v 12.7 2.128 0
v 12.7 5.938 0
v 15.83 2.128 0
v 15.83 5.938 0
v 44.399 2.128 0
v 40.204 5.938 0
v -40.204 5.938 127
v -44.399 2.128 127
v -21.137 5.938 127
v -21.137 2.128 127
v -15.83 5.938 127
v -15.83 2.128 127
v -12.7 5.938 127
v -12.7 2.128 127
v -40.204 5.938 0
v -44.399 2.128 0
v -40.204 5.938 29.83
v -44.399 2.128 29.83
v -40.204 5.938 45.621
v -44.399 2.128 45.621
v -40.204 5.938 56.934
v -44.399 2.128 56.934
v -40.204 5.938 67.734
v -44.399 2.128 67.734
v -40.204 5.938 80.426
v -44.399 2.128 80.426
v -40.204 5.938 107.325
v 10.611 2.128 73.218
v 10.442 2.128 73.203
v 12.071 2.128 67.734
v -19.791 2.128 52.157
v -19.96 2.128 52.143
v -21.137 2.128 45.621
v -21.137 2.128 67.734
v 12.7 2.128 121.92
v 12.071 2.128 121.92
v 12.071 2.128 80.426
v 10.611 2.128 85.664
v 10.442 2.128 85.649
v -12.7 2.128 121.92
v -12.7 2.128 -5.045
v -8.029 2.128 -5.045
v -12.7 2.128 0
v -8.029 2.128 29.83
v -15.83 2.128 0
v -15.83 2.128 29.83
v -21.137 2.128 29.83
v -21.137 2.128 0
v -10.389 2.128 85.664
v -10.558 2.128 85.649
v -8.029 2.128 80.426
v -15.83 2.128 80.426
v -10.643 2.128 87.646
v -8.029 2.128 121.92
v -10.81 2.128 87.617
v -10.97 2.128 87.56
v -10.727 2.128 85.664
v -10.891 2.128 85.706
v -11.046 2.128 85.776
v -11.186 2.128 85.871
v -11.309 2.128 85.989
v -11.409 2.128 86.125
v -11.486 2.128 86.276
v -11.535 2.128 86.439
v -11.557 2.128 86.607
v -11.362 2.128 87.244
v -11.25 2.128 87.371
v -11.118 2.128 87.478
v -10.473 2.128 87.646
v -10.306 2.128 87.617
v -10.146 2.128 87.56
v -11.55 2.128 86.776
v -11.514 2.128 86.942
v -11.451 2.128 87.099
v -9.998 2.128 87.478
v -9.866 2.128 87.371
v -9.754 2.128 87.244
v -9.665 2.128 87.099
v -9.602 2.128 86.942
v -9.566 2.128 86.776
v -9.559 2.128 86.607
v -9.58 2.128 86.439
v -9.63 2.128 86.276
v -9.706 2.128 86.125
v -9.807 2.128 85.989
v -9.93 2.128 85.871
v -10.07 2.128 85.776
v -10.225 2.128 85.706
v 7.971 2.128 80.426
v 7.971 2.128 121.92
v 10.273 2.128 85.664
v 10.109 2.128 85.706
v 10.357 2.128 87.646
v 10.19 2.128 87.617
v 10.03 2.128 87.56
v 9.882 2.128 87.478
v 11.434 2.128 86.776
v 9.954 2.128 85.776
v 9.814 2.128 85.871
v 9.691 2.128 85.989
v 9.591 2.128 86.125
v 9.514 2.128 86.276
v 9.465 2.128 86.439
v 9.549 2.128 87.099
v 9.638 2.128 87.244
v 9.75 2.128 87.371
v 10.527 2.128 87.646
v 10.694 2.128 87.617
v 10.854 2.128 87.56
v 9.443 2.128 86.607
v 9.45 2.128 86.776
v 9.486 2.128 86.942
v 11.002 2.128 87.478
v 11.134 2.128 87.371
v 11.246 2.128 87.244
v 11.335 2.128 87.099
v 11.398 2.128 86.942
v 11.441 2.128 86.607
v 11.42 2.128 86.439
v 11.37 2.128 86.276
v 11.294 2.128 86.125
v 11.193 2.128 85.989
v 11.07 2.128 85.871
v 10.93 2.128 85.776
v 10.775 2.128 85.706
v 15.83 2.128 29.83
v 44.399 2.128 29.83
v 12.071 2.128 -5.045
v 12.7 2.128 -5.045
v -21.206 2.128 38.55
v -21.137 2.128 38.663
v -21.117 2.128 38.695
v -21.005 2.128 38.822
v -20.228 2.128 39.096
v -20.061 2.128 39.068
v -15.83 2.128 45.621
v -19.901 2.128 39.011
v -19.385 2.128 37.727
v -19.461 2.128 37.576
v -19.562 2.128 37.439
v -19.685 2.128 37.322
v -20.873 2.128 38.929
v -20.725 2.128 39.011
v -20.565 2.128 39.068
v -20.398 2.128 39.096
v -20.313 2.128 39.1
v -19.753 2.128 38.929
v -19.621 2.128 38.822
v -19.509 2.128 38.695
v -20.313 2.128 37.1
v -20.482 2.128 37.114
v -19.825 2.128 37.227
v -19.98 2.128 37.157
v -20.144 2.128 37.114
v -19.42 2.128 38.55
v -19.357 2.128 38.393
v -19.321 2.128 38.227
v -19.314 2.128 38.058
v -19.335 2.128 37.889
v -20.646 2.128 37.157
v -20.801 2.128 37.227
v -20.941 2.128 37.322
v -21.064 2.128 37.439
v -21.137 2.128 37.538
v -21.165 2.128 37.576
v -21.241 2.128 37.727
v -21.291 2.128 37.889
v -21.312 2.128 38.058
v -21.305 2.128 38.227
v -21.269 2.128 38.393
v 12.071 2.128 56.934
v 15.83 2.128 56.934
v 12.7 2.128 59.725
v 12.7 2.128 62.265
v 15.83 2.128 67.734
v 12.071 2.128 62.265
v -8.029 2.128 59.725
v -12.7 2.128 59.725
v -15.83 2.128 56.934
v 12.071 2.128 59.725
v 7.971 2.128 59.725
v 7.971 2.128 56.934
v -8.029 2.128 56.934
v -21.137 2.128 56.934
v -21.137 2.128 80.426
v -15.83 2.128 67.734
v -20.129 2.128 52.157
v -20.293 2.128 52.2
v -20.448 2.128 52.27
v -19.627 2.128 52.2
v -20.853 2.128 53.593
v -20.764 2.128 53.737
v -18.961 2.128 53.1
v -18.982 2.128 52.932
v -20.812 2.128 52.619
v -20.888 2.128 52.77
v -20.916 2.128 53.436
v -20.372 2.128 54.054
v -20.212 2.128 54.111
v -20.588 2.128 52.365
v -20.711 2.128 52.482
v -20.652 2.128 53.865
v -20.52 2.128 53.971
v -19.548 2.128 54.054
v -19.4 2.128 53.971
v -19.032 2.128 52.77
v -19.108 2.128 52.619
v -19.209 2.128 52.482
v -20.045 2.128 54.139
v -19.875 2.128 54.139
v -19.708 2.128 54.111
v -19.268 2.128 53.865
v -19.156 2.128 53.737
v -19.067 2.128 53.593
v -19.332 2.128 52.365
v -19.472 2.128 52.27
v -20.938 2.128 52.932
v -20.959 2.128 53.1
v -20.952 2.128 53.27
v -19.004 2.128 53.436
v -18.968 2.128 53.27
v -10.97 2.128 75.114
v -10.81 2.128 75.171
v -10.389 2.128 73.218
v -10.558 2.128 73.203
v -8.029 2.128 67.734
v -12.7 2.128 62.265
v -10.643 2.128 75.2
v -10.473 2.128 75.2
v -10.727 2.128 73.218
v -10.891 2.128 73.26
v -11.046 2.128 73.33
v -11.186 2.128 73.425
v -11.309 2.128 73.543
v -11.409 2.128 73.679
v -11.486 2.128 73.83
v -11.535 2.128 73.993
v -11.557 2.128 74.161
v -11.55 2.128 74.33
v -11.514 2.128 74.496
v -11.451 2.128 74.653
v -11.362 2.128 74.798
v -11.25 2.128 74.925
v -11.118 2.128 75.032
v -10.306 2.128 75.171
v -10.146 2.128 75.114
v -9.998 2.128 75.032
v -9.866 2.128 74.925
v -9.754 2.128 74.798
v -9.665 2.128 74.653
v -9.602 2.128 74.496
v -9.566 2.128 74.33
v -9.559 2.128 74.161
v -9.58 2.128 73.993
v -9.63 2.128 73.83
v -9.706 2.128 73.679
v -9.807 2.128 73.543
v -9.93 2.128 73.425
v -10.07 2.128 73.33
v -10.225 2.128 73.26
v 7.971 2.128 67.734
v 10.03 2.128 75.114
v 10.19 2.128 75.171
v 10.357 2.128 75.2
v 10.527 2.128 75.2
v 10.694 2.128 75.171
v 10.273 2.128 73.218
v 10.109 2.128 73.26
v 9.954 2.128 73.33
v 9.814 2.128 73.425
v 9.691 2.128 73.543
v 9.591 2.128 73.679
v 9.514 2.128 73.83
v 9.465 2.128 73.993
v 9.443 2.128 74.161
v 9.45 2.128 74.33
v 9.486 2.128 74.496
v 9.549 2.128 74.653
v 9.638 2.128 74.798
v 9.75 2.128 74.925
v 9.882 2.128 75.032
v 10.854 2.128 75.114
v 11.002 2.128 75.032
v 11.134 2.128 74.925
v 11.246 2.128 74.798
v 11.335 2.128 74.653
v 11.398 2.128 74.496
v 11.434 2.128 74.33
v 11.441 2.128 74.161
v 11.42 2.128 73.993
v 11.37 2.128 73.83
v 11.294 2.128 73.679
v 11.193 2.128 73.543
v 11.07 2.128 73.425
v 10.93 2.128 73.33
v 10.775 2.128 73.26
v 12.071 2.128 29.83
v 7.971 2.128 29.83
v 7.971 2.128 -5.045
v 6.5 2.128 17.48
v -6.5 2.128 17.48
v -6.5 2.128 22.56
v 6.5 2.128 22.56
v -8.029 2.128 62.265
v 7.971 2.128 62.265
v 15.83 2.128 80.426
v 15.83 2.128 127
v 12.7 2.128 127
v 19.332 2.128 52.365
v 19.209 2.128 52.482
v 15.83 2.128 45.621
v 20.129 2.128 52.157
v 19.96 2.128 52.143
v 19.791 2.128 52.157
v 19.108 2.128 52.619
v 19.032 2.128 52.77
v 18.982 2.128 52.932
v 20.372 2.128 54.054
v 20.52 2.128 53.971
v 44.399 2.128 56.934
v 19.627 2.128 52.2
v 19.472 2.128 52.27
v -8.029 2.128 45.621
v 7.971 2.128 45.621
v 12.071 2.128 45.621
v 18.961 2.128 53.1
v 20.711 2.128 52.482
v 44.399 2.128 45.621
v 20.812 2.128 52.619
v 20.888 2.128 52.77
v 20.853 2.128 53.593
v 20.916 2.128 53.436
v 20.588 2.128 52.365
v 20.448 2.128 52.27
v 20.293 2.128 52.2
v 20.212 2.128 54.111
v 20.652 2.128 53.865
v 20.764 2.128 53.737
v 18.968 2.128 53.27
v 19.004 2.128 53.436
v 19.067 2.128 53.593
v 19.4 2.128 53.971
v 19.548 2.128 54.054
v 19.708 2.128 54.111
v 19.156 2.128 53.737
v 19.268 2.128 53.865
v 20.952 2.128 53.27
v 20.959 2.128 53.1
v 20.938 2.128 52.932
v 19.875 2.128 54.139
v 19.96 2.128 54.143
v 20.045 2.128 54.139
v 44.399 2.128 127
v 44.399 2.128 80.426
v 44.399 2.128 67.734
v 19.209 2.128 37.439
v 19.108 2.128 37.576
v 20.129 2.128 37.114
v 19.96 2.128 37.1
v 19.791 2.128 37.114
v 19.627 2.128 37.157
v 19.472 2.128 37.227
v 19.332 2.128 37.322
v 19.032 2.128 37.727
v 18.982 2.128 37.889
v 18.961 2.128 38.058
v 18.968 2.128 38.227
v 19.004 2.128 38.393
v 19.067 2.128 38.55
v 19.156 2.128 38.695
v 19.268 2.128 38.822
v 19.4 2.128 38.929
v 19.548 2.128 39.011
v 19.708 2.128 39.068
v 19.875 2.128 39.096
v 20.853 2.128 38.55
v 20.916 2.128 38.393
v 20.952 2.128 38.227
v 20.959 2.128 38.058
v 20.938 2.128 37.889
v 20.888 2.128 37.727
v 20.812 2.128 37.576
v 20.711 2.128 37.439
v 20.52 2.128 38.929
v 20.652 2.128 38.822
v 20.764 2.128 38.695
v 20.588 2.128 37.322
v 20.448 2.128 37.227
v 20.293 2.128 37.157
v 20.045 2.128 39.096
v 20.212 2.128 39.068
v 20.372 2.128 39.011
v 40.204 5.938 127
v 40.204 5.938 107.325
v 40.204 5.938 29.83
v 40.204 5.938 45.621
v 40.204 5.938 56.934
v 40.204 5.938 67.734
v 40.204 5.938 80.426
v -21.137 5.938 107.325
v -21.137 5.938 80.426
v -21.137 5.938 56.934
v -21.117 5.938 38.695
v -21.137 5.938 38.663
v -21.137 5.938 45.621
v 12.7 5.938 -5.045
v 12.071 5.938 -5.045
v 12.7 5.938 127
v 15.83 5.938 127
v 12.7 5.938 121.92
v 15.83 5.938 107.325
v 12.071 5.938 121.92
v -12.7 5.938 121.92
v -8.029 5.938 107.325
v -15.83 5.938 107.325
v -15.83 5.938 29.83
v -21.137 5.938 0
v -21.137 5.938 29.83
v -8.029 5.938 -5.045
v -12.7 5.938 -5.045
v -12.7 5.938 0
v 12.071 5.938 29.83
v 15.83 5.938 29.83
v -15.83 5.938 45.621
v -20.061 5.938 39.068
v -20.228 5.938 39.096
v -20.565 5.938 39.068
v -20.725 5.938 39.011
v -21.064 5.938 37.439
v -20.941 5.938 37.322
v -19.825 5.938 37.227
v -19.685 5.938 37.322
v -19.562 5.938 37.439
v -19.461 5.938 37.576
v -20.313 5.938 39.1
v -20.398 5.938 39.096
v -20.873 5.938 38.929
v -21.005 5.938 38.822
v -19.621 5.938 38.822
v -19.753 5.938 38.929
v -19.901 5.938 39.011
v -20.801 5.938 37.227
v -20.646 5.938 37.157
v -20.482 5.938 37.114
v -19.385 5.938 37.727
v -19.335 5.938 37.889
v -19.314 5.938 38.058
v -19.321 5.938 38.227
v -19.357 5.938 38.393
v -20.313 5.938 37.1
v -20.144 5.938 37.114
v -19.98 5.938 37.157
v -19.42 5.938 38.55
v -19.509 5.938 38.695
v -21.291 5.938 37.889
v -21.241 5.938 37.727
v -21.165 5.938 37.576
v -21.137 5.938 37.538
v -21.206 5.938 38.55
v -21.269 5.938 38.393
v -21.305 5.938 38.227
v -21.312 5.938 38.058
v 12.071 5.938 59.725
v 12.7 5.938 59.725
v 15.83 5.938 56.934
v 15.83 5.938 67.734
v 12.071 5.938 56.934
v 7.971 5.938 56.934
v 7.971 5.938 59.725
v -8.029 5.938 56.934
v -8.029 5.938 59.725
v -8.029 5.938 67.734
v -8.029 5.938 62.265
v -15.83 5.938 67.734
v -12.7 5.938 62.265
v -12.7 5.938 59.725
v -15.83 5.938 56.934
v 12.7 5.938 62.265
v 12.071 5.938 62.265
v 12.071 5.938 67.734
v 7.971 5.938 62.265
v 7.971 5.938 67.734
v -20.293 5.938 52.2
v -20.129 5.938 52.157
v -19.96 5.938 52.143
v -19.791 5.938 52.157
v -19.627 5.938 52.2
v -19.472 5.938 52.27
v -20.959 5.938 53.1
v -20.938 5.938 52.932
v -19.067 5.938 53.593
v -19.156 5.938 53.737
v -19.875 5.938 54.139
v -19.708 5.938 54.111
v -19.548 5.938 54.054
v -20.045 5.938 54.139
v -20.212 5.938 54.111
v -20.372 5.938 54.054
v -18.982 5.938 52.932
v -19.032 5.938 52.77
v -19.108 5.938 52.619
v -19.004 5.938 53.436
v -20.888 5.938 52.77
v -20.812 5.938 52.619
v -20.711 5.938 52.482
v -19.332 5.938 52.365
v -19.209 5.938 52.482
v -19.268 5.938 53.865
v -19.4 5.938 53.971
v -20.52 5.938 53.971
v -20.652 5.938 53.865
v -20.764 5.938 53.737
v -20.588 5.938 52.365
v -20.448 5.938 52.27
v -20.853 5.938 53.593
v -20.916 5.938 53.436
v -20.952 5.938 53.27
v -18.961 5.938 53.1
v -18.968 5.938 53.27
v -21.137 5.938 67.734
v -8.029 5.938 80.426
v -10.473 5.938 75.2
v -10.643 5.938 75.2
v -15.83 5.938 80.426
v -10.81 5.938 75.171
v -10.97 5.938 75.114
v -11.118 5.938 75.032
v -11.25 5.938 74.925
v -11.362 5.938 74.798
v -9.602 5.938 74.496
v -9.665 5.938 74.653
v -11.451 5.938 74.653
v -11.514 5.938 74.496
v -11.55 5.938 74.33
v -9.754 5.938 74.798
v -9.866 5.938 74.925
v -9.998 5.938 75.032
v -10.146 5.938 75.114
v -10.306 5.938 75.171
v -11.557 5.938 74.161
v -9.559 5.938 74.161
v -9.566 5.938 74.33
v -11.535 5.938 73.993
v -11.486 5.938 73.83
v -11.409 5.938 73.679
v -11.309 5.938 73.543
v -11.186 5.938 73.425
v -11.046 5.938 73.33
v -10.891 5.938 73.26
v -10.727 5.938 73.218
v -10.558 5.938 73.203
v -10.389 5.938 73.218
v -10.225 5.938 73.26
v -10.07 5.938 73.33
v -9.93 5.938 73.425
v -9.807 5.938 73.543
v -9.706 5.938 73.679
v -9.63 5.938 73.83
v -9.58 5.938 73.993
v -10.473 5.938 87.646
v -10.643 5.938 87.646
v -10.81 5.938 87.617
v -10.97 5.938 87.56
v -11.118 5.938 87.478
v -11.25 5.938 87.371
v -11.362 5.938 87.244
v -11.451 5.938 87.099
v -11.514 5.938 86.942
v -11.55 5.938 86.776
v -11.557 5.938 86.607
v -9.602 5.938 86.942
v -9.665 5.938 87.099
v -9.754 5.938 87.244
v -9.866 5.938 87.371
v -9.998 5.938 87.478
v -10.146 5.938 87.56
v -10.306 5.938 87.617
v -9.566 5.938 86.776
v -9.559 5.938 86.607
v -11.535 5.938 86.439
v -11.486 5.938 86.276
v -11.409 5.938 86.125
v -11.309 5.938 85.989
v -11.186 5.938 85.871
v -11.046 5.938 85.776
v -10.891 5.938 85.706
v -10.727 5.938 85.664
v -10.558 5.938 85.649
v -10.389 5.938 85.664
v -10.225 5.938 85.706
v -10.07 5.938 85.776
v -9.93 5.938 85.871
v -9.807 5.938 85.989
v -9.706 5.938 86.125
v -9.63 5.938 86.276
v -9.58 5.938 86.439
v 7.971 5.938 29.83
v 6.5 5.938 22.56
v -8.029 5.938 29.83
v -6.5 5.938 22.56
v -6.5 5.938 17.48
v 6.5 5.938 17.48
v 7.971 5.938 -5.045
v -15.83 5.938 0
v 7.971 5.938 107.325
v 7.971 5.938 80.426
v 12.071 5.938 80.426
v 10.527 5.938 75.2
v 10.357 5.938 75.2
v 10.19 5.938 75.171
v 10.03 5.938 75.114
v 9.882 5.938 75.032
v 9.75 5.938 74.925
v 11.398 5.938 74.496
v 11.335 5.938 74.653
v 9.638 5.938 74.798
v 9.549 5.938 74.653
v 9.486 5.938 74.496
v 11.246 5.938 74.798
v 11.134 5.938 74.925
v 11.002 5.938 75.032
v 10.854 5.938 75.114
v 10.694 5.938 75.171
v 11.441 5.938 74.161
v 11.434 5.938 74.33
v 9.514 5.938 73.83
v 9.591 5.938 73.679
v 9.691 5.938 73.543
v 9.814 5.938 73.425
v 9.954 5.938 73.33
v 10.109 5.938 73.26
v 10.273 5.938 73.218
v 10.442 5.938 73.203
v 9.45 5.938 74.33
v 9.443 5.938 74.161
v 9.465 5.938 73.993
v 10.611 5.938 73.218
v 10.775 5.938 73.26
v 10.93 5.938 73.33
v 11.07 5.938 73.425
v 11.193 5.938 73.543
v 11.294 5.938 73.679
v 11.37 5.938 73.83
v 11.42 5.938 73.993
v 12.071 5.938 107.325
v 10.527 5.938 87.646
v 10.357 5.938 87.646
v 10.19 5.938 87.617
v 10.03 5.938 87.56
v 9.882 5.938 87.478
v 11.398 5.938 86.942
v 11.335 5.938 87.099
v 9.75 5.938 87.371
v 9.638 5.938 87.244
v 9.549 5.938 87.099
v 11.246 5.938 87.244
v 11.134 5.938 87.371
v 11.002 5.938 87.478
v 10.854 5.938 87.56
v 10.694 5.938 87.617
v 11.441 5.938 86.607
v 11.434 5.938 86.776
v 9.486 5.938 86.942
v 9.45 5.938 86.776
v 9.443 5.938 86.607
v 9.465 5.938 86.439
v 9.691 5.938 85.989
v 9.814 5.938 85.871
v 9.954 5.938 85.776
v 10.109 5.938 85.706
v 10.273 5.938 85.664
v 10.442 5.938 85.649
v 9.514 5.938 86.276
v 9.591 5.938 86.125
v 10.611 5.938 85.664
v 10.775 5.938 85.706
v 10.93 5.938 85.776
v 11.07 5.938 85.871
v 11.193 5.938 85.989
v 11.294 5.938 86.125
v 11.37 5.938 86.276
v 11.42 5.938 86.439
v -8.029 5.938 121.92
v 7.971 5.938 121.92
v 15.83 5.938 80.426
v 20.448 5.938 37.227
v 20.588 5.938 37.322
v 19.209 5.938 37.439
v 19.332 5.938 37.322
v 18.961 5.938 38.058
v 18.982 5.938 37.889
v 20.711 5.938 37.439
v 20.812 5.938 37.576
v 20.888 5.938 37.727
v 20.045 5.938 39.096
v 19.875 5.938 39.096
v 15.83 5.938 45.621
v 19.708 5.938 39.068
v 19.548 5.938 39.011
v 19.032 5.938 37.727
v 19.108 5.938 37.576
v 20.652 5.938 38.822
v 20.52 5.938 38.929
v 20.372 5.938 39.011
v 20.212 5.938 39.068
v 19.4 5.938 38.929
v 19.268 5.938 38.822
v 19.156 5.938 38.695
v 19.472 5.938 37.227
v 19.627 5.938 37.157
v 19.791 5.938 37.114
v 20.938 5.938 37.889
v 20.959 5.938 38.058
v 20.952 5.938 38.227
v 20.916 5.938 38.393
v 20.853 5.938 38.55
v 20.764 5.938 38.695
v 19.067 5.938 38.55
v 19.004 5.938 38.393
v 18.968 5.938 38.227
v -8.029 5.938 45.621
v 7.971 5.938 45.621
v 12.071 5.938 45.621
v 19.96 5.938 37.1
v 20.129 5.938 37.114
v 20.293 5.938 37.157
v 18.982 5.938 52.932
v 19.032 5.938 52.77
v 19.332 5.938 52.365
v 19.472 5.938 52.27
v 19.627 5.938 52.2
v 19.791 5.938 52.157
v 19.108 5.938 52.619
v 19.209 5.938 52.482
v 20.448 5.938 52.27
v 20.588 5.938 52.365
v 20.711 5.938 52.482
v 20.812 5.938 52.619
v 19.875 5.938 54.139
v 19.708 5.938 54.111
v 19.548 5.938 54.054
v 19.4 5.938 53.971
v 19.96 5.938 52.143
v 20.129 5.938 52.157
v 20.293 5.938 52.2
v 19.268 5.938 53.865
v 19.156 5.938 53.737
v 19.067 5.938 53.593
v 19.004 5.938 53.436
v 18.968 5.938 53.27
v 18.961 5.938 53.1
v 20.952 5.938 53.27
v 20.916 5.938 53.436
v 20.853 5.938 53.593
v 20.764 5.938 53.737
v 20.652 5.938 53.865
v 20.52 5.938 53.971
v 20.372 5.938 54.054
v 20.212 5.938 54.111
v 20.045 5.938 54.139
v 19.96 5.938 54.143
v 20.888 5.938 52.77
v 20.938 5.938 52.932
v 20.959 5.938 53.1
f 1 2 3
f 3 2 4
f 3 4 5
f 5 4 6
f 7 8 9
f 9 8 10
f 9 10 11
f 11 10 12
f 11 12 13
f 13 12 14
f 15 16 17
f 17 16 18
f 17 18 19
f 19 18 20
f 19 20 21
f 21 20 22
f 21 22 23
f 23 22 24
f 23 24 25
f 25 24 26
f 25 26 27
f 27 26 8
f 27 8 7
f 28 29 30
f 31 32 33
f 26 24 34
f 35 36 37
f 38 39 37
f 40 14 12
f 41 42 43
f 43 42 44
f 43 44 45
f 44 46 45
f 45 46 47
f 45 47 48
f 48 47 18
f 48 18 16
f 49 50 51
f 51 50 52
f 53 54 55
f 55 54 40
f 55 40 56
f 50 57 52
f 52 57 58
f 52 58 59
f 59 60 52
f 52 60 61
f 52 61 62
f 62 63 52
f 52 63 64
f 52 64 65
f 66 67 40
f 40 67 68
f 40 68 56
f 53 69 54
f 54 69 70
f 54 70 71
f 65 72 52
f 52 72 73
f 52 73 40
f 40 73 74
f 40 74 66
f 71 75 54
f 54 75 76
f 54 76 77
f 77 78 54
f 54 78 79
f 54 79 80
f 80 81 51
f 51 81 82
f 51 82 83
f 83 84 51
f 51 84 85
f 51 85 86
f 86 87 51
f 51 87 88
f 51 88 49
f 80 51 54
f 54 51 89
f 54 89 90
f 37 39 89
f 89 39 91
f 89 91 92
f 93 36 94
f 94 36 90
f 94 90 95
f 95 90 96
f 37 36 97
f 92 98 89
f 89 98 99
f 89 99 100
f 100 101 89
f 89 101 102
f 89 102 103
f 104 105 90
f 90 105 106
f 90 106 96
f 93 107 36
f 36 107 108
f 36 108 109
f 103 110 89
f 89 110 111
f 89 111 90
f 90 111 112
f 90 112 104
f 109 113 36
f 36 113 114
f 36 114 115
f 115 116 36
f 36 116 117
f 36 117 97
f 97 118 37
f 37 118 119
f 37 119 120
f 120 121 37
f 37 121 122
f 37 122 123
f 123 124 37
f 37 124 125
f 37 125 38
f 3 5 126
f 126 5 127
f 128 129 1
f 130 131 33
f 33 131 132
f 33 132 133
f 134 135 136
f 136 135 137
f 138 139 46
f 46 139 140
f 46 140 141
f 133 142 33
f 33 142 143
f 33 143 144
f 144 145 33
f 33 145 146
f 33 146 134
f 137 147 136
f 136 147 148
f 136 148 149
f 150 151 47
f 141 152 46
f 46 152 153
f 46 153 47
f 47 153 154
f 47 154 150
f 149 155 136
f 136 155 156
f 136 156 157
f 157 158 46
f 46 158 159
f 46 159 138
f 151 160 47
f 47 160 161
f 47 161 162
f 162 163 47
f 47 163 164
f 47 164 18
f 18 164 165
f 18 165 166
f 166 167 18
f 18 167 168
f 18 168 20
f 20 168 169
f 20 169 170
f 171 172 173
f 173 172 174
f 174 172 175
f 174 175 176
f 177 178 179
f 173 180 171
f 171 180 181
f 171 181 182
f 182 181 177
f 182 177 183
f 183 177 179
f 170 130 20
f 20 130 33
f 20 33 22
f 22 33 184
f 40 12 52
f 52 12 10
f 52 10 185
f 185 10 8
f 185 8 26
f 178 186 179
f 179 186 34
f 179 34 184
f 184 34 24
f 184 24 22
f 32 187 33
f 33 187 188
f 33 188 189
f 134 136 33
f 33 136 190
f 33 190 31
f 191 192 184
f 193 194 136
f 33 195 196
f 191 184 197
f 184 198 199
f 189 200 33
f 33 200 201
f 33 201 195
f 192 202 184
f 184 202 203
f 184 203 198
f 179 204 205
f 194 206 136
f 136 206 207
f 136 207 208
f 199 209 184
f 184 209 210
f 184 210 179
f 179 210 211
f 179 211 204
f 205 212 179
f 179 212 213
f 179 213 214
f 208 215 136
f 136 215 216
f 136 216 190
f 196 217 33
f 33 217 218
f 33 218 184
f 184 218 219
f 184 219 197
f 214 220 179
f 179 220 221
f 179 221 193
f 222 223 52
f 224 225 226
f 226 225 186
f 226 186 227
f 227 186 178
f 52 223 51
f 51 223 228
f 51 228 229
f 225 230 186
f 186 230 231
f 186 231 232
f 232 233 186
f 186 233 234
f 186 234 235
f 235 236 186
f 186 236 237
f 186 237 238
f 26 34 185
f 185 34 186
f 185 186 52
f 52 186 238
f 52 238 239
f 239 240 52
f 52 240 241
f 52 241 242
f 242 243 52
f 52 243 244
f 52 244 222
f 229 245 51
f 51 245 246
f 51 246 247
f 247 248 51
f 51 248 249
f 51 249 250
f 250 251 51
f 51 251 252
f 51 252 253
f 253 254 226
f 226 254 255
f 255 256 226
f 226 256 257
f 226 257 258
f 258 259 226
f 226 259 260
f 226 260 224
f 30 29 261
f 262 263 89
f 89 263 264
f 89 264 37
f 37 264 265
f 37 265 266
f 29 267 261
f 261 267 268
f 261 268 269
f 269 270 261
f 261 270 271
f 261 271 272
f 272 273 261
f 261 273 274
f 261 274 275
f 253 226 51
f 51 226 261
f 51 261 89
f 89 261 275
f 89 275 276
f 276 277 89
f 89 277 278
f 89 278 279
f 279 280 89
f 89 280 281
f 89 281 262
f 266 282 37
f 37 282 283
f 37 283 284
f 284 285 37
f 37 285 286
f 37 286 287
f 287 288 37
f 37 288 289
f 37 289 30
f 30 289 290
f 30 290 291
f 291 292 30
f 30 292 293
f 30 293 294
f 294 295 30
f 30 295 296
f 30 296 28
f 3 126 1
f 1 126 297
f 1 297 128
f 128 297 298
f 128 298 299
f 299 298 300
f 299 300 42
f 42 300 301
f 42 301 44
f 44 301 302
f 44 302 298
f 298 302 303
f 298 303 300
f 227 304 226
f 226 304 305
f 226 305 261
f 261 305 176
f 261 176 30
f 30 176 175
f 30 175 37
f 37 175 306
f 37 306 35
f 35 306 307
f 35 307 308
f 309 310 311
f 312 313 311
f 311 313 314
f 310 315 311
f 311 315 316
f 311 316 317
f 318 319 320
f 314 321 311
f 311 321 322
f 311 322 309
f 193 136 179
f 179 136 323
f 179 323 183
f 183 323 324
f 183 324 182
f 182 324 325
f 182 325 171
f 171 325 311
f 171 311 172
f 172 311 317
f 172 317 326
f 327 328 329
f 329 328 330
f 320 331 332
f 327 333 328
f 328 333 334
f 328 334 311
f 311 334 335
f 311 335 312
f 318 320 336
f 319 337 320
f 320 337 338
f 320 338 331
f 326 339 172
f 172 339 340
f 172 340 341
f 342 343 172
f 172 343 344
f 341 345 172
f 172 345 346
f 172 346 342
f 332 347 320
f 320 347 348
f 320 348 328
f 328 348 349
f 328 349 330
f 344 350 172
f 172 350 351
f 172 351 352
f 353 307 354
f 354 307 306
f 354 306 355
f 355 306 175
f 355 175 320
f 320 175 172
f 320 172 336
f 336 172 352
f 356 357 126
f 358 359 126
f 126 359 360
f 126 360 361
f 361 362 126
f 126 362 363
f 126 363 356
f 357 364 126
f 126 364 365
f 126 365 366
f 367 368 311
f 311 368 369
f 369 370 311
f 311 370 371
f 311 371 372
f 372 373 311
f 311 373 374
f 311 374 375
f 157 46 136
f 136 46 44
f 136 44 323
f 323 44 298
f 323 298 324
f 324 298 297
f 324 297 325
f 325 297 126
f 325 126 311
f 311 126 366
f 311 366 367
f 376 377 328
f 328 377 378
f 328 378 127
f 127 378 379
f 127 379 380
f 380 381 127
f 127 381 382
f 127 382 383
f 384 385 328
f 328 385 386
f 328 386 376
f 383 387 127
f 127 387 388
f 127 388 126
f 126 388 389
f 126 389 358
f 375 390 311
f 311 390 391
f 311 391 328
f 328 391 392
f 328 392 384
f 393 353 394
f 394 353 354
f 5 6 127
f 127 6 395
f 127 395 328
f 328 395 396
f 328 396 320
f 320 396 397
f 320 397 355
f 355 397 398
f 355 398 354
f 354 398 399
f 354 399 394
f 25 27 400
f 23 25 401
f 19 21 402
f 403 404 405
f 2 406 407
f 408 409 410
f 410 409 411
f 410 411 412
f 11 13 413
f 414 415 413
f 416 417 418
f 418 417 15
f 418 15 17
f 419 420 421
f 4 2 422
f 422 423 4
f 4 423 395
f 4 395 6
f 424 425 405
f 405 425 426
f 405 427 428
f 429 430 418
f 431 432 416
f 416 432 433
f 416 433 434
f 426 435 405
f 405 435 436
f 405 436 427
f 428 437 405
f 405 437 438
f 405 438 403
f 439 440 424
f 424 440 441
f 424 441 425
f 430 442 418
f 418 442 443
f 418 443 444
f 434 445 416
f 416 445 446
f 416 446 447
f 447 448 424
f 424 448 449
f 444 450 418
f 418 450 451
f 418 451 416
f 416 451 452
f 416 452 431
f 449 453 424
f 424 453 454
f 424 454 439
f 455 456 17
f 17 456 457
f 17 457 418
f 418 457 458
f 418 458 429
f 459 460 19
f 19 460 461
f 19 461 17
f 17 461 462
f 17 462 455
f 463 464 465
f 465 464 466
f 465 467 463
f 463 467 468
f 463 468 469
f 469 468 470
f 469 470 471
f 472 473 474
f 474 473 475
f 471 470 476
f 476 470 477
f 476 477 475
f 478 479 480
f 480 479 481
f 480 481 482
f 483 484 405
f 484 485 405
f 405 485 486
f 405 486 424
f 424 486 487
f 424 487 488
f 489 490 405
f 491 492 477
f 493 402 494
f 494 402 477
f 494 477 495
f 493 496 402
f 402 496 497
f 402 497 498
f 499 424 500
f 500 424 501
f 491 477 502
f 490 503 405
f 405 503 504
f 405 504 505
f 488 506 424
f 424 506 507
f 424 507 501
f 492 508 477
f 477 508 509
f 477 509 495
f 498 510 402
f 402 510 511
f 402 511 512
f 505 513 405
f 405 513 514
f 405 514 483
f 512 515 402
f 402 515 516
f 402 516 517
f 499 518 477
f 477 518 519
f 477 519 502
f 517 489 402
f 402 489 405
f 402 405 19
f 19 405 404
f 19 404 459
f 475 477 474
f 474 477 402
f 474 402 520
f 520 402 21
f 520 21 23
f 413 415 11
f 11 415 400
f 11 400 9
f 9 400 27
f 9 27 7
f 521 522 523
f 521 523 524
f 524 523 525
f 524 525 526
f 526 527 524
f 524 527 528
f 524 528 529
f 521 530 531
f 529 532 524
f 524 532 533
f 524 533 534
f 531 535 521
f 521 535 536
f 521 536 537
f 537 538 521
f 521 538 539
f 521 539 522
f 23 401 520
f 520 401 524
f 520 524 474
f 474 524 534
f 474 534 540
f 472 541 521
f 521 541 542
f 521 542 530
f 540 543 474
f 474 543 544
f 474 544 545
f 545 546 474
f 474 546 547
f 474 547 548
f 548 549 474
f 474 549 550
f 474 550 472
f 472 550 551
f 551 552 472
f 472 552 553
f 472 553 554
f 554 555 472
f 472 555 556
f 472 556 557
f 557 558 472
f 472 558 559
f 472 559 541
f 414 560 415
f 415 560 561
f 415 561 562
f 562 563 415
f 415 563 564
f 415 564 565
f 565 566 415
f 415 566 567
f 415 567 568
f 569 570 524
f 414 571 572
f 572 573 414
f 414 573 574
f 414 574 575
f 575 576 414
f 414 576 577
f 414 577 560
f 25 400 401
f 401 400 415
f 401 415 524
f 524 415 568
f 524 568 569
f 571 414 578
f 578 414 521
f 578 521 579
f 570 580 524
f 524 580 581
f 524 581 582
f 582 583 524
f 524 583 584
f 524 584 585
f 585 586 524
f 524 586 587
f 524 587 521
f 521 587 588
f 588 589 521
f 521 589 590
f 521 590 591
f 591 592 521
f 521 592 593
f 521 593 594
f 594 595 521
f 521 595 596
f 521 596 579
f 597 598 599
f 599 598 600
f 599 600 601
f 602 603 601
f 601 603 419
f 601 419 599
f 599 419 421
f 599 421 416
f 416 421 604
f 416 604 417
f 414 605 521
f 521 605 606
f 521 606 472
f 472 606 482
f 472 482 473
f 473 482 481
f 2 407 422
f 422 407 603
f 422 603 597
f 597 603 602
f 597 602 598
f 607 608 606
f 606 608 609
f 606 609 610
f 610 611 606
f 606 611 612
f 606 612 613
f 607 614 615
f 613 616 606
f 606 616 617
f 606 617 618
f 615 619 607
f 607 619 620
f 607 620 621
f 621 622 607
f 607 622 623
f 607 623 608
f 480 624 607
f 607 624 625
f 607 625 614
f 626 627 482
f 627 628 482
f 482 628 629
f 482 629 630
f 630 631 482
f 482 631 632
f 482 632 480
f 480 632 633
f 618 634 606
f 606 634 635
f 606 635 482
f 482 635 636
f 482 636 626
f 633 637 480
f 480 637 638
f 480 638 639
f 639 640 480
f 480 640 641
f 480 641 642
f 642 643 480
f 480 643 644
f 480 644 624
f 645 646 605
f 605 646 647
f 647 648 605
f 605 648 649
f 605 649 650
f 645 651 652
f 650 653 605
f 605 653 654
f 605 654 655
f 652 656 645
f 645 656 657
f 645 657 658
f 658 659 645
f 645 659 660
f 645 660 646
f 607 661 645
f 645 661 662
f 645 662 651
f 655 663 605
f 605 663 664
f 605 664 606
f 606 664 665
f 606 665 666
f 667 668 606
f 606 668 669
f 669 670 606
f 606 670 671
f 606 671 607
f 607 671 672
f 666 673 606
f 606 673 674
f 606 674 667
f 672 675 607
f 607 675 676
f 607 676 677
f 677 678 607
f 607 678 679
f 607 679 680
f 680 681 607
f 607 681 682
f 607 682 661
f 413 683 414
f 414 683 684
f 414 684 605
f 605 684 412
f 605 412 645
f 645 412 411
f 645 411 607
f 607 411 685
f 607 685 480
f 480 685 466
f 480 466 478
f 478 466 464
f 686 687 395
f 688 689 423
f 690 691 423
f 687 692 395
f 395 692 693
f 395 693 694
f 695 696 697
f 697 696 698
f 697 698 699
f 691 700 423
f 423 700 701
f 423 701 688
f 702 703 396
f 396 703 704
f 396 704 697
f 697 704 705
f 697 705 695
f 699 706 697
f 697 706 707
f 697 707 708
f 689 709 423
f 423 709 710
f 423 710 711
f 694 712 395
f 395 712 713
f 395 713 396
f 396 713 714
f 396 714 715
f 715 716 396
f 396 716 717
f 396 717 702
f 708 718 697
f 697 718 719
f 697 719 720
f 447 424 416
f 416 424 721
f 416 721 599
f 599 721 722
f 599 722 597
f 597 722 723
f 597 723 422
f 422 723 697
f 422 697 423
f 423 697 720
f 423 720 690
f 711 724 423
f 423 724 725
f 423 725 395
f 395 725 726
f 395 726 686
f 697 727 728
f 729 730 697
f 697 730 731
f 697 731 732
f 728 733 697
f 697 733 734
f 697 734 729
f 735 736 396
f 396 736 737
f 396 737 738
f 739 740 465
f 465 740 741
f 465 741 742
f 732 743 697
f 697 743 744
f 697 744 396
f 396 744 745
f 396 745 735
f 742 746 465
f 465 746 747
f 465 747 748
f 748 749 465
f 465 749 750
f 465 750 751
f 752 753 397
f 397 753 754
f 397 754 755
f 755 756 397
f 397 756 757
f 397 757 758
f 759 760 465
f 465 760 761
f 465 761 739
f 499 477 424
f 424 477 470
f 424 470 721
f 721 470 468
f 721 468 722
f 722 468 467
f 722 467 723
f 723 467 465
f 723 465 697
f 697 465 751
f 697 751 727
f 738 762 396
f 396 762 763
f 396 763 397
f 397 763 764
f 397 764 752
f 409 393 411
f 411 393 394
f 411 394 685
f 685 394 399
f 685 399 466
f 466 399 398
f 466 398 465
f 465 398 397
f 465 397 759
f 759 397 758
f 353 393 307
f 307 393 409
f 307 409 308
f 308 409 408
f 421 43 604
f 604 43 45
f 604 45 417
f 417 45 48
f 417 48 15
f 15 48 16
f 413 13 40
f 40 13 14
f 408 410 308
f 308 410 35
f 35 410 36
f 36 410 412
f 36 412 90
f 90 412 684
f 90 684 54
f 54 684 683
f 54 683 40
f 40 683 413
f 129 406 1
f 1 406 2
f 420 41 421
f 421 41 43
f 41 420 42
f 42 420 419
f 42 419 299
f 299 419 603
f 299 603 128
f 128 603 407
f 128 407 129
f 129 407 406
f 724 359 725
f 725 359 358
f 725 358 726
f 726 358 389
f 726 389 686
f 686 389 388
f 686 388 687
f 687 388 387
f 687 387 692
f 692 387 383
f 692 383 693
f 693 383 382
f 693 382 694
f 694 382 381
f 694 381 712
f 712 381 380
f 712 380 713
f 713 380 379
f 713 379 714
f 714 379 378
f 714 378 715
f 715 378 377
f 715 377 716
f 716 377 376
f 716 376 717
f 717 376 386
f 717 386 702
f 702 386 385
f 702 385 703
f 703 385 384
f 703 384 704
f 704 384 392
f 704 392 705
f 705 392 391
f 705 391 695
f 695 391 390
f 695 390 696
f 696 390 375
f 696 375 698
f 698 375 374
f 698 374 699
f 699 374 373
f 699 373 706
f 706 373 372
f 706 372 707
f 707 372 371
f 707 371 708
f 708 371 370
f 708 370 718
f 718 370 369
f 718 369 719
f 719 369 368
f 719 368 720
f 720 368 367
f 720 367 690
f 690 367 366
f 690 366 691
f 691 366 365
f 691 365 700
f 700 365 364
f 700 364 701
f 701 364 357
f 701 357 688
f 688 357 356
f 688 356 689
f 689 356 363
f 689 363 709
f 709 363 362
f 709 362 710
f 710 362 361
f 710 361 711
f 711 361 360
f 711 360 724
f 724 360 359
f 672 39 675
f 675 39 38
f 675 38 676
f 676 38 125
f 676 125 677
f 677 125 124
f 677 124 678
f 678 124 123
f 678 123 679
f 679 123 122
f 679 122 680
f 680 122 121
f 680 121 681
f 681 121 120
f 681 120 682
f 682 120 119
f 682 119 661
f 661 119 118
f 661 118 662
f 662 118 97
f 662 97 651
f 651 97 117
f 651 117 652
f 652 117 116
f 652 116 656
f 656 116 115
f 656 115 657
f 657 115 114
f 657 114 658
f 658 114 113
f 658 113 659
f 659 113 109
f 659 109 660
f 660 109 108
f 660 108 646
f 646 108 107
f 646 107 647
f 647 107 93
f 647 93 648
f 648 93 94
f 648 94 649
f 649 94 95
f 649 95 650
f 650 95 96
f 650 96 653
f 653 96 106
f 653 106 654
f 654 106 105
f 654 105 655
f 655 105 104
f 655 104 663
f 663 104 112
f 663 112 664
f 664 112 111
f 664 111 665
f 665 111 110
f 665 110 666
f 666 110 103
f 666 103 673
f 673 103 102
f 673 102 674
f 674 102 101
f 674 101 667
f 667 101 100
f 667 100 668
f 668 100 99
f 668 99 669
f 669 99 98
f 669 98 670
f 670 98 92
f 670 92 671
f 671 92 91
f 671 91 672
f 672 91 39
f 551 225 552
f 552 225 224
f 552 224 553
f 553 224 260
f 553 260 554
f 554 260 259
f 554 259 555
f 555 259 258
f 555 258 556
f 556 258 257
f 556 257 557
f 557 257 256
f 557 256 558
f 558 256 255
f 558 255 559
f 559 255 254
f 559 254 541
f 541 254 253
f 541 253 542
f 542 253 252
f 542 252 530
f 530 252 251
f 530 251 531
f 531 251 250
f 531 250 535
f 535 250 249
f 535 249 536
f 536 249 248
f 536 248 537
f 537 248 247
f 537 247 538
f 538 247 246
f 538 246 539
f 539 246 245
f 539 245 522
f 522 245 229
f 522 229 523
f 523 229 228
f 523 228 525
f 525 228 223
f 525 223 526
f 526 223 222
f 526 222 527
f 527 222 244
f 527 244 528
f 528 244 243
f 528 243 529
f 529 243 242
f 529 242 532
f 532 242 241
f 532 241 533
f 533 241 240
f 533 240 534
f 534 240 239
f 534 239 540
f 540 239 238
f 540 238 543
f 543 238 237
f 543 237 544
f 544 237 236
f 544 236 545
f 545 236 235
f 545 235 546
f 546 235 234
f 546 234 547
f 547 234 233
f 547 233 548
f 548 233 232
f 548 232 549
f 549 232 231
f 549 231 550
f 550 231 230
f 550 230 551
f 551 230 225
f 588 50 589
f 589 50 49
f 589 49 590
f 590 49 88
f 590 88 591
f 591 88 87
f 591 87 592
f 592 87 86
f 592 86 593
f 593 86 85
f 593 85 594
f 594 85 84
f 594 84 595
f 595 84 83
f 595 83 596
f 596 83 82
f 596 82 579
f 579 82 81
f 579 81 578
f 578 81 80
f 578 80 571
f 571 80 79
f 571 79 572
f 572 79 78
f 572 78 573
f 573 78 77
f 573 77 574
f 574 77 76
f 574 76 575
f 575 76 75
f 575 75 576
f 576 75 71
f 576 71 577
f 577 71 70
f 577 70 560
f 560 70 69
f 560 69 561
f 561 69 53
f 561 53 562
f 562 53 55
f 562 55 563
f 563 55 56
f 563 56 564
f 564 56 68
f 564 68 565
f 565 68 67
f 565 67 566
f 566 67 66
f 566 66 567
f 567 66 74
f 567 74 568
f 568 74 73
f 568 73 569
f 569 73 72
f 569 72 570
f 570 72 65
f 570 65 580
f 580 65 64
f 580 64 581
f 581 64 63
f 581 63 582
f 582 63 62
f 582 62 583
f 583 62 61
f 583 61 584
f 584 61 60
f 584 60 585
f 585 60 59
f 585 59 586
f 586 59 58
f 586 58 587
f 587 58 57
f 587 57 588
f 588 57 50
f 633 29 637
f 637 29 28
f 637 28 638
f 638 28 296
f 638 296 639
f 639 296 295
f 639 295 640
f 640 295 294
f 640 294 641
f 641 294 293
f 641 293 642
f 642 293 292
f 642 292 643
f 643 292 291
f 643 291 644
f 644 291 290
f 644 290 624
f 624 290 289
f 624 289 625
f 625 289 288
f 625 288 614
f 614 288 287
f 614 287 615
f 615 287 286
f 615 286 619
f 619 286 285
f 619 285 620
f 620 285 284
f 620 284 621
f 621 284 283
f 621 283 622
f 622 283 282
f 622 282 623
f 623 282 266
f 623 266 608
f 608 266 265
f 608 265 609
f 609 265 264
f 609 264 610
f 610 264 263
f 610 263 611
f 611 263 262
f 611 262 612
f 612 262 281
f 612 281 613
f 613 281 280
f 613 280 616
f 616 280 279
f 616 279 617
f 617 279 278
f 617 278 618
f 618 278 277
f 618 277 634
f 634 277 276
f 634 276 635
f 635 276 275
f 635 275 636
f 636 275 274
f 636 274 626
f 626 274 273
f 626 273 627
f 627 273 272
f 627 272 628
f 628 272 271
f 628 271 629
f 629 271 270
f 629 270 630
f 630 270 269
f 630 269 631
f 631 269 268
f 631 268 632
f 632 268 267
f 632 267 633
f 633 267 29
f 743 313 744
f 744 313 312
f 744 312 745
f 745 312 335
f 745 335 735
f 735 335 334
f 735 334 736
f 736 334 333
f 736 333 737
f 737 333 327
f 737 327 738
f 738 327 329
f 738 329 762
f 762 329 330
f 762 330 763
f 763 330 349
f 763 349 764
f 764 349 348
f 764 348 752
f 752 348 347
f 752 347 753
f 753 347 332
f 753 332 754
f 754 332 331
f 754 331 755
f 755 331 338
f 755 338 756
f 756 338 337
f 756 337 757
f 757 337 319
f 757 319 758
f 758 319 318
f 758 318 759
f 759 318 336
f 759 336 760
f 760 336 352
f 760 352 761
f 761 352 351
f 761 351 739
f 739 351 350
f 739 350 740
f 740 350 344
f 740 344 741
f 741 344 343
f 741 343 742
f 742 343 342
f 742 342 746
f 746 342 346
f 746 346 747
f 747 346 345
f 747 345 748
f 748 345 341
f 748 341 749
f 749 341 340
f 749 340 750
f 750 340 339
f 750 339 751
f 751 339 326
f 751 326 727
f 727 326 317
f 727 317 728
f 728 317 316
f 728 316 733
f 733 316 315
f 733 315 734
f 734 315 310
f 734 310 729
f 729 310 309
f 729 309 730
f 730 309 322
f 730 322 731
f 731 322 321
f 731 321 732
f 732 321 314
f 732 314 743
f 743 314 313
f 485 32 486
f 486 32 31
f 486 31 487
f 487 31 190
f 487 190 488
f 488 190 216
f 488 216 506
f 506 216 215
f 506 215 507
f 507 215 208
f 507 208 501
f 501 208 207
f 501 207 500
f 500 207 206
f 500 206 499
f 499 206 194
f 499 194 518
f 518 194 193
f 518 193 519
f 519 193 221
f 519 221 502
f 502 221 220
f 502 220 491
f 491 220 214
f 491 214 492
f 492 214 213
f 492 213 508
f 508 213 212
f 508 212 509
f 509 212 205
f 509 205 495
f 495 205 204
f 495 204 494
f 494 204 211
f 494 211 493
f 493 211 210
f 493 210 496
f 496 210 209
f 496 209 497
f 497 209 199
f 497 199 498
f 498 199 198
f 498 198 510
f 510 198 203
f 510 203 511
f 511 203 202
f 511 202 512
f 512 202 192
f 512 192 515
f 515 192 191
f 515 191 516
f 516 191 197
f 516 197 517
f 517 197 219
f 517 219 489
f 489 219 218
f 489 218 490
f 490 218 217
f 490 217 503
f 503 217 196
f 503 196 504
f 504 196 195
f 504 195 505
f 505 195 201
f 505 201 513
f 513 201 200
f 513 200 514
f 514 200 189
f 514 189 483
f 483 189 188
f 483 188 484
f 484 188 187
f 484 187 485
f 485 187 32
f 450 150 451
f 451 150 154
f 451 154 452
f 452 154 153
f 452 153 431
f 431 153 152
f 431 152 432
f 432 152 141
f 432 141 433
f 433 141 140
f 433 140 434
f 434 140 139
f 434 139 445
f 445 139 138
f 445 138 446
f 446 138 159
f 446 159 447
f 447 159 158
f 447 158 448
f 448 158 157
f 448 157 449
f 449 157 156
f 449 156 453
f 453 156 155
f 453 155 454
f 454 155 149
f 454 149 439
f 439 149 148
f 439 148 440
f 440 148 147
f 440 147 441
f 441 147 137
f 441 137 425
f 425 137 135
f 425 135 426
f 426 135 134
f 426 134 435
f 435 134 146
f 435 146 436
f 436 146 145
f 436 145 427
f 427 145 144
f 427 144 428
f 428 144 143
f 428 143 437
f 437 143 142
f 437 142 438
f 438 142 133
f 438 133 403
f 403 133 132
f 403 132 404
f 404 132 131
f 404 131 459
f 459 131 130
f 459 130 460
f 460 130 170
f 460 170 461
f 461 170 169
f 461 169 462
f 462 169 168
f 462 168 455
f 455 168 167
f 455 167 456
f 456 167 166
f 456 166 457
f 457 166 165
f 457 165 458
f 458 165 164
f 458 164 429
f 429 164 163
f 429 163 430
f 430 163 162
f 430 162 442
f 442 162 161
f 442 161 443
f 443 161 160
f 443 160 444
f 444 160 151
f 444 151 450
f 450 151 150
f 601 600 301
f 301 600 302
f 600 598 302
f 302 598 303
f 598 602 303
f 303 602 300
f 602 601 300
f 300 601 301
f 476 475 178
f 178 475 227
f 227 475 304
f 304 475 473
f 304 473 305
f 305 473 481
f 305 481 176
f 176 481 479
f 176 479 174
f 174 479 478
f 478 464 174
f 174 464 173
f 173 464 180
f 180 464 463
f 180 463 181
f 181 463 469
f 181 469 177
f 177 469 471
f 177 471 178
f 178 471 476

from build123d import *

# Parameters (mm, degrees)
BOSS_EXTRUDE1_DEPTH = 127
SKETCH3_W           = 25.4
SKETCH3_H           = 5.08
CUT_EXTRUDE1_DEPTH  = 135.591199998
SKETCH4_W           = 25.4
SKETCH4_H           = 5.08
BOSS_EXTRUDE3_DEPTH = 3.81
SKETCH5_R           = 1
SKETCH5_R_2         = 0.999998
SKETCH5_W           = 13
SKETCH5_H           = 5.08
SKETCH5_W_2         = 25.4
SKETCH5_H_2         = 2.54
CUT_EXTRUDE2_DEPTH  = 135.591199998


with BuildPart() as part:
    # Sketch1 → Boss-Extrude1 (new body)
    with BuildSketch(Plane.XY):
        Polygon((-40.203883769, 5.937788296), (40.203883769, 5.937788296), (44.399042974, 2.127788296), (-44.399042974, 2.127788296), align=None)
    extrude(amount=BOSS_EXTRUDE1_DEPTH)

    # Sketch3 → Cut-Extrude1 (cut, through all)
    with BuildSketch(Plane.XZ.offset(-2.127788296)):
        with Locations((0, 124.46)):
            Rectangle(SKETCH3_W, SKETCH3_H)
    extrude(amount=-CUT_EXTRUDE1_DEPTH, mode=Mode.SUBTRACT)

    # Sketch4 → Boss-Extrude3 (add)
    with BuildSketch(Plane.XZ.offset(-2.127788296)):
        with Locations((0, -2.504739817)):
            Rectangle(SKETCH4_W, SKETCH4_H)
    extrude(amount=-BOSS_EXTRUDE3_DEPTH)

    # Sketch5 → Cut-Extrude2 (cut, through all)
    with BuildSketch(Plane(origin=(0, 2.127788296, 0), x_dir=(-1, 0, 0), z_dir=(0, -1, 0))):
        with Locations(Location((-19.96, -38.1, 0), (0, 0, 90))):
            Circle(SKETCH5_R)
        with Locations(Location((20.313021022, -38.1, 0), (0, 0, 90))):
            Circle(SKETCH5_R)
        with Locations(Location((19.96, -53.142840099, 0), (0, 0, 90))):
            Circle(SKETCH5_R)
        with Locations(Location((-19.96, -53.142840099, 0), (0, 0, 90))):
            Circle(SKETCH5_R)
        with Locations(Location((-10.44215584, -74.203260183, 0), (0, 0, 90))):
            Circle(SKETCH5_R)
        with Locations(Location((-10.44215584, -86.649260183, 0), (0, 0, 90))):
            Circle(SKETCH5_R)
        with Locations(Location((10.55784416, -74.203260183, 0), (0, 0, 90))):
            Circle(SKETCH5_R)
        with Locations(Location((10.55784416, -86.649260183, 0), (0, 0, 90))):
            Circle(SKETCH5_R)
        with Locations((-93.931058926, -72.649749874)):
            Circle(SKETCH5_R_2)
        with Locations((-93.931058926, -85.149749874)):
            Circle(SKETCH5_R)
        with Locations((-72.931058926, -72.649749874)):
            Circle(SKETCH5_R)
        with Locations((-72.931058926, -85.149749874)):
            Circle(SKETCH5_R)
        with Locations((-93.904836904, 5.641456719)):
            Circle(SKETCH5_R)
        with Locations((-53.184836904, 5.641456719)):
            Circle(SKETCH5_R)
        with Locations((-53.184836904, -9.358543281)):
            Circle(SKETCH5_R)
        with Locations((-93.904836904, -9.358543281)):
            Circle(SKETCH5_R)
        with Locations((0, -20.02)):
            Rectangle(SKETCH5_W, SKETCH5_H)
        with Locations((0, -60.995260183)):
            Rectangle(SKETCH5_W_2, SKETCH5_H_2)
    extrude(amount=-CUT_EXTRUDE2_DEPTH, mode=Mode.SUBTRACT)


solid = part.part
